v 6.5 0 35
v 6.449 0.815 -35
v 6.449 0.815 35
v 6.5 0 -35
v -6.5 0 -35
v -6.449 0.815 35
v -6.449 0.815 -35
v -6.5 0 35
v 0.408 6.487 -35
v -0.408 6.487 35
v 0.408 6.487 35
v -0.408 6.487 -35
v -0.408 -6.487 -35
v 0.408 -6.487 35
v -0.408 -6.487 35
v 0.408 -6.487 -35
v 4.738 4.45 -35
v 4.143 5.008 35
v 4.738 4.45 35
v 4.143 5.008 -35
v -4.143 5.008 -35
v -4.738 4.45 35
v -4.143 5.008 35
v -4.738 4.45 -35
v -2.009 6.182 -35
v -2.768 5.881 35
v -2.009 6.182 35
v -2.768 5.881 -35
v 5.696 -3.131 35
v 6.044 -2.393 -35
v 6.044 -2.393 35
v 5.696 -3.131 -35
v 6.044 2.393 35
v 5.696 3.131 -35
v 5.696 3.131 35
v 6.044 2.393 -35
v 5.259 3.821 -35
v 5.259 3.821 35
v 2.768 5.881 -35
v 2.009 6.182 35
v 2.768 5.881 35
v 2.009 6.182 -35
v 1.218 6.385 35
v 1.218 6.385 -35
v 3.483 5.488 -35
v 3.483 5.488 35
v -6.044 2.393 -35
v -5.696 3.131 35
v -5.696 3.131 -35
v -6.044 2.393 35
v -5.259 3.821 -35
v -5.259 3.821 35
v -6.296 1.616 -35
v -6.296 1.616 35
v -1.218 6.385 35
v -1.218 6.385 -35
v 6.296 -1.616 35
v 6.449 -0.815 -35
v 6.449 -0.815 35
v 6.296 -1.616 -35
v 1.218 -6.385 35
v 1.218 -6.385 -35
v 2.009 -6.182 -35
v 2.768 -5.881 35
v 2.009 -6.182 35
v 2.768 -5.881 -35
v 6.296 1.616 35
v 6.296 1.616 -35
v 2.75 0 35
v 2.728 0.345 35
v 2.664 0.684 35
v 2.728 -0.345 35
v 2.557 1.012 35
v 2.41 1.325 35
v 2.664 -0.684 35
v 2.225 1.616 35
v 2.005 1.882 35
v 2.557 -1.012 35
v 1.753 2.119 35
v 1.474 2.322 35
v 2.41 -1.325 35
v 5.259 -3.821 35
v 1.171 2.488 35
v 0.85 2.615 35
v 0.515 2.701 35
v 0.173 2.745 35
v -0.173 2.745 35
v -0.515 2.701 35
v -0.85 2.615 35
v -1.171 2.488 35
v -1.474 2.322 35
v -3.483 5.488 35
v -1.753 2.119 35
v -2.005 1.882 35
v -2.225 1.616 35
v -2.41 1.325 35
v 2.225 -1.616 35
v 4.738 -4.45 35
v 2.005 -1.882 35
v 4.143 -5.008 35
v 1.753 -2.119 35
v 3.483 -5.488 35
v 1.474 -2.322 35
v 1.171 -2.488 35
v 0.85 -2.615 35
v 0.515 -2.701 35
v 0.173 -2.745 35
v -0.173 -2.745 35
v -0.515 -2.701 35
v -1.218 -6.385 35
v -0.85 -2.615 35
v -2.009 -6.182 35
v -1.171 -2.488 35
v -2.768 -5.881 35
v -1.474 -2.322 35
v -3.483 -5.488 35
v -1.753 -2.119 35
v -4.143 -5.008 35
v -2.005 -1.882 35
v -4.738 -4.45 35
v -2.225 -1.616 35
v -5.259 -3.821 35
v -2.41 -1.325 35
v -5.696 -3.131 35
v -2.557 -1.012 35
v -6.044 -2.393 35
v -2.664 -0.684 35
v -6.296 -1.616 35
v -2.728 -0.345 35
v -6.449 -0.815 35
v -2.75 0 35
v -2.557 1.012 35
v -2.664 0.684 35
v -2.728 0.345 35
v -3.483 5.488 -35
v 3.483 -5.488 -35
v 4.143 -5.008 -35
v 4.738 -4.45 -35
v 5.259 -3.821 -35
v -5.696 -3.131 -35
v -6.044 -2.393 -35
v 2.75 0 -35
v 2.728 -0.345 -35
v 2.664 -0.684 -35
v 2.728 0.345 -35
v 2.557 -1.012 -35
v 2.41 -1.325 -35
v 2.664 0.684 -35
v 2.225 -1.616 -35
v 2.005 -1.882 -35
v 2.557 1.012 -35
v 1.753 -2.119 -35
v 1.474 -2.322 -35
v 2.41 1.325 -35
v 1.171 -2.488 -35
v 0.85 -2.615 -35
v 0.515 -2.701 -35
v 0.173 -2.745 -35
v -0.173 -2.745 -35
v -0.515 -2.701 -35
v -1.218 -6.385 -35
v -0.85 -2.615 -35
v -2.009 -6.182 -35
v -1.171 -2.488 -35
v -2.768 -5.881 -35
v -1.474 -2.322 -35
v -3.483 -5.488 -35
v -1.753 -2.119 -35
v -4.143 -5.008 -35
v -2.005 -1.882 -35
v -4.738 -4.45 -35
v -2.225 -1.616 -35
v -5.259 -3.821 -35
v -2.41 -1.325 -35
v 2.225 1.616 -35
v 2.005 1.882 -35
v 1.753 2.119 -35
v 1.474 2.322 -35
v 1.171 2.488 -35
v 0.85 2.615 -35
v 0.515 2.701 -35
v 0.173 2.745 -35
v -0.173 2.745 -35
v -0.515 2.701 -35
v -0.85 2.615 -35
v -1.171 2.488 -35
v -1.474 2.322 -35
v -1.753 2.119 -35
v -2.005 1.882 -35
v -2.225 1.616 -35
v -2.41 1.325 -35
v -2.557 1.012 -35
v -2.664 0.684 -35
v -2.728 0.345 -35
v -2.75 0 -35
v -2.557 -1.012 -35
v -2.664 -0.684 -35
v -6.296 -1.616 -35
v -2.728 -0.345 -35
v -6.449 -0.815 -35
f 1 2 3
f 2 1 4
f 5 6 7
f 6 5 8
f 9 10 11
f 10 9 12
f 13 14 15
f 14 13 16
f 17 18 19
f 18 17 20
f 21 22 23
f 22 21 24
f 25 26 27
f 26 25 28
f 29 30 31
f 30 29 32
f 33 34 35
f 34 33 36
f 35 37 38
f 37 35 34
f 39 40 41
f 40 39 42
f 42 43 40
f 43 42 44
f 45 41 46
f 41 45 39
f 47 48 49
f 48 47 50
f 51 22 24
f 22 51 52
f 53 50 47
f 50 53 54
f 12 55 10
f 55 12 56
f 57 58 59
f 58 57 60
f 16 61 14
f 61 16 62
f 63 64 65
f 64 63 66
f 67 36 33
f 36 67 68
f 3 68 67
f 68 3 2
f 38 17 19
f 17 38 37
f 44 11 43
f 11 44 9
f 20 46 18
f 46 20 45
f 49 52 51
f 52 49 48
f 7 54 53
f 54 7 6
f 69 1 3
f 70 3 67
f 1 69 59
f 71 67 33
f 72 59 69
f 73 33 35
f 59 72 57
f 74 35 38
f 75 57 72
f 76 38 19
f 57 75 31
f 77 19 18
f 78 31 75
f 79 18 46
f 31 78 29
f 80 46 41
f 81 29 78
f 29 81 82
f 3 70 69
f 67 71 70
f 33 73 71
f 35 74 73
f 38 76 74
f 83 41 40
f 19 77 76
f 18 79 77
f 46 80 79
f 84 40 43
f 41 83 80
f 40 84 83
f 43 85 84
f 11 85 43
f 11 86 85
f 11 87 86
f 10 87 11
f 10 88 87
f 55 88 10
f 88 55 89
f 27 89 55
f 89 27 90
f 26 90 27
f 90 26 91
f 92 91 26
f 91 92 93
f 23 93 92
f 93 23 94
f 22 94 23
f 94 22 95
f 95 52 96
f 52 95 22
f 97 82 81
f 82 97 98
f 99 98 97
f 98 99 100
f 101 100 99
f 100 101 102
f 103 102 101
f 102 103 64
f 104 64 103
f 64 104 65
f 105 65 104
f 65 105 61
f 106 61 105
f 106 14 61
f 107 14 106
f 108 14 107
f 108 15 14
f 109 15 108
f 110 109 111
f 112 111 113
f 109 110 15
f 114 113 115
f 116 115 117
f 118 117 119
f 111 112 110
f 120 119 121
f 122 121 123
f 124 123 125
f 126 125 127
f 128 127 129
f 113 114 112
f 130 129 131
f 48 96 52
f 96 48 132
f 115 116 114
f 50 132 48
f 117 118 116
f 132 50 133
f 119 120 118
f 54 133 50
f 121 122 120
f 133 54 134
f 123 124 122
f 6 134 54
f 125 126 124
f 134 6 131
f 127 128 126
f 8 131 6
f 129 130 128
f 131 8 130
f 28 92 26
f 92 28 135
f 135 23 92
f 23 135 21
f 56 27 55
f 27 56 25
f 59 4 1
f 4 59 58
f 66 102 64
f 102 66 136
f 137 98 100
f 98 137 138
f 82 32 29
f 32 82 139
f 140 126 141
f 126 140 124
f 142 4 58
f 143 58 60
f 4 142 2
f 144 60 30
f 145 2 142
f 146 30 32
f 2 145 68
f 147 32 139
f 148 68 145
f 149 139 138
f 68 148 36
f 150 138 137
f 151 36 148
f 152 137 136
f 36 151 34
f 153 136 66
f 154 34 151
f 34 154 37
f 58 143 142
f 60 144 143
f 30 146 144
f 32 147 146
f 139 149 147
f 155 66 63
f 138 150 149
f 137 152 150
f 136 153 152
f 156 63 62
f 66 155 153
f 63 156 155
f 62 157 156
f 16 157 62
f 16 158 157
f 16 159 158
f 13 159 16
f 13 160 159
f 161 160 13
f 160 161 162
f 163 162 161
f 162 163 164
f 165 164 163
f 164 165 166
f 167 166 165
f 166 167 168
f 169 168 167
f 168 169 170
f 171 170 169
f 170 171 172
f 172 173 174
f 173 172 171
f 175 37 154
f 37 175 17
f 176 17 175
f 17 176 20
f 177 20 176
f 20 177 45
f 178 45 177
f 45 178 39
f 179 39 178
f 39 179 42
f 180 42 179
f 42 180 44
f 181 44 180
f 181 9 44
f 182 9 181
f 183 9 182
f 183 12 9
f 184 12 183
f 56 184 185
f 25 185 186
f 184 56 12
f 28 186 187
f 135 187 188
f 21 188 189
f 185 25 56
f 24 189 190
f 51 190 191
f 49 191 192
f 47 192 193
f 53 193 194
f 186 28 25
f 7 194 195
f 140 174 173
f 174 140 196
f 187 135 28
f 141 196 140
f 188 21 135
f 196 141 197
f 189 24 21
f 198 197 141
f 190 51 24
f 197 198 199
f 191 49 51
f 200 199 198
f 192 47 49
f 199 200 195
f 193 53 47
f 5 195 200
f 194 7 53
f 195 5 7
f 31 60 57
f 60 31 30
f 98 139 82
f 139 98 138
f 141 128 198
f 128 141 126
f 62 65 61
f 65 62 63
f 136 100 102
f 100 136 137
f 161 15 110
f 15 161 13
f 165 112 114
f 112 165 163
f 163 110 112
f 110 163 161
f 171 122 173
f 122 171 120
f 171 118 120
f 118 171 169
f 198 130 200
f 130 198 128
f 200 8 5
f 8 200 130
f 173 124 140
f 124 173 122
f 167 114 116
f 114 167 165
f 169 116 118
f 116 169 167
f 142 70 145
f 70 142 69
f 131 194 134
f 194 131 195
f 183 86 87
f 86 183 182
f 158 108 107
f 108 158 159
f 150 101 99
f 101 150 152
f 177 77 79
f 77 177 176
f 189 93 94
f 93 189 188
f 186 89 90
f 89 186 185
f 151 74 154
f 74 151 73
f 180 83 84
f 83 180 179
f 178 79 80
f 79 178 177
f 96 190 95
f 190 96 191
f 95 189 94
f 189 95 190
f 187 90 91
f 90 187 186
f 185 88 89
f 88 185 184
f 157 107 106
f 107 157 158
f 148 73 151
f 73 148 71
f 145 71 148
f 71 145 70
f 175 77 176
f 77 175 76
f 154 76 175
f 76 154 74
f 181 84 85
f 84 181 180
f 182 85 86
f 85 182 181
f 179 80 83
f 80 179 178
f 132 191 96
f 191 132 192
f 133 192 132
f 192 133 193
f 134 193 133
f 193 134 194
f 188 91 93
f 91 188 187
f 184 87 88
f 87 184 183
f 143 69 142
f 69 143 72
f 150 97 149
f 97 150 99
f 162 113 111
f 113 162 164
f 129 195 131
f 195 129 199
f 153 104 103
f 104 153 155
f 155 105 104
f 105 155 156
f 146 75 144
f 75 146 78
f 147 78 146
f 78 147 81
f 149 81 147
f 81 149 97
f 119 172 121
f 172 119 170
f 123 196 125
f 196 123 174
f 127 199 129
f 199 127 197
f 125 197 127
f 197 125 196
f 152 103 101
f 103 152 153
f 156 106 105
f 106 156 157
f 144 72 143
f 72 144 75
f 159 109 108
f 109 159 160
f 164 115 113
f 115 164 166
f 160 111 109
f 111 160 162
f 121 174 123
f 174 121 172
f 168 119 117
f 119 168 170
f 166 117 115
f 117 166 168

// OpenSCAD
$fn = 50;


difference() {
	union() {
		translate(v = [0, 0, -35.0000000000]) {
			cylinder(h = 70, r = 6.5000000000);
		}
	}
	union() {
		translate(v = [0, 0, -100.0000000000]) {
			cylinder(h = 200, r = 2.7500000000);
		}
	}
}
